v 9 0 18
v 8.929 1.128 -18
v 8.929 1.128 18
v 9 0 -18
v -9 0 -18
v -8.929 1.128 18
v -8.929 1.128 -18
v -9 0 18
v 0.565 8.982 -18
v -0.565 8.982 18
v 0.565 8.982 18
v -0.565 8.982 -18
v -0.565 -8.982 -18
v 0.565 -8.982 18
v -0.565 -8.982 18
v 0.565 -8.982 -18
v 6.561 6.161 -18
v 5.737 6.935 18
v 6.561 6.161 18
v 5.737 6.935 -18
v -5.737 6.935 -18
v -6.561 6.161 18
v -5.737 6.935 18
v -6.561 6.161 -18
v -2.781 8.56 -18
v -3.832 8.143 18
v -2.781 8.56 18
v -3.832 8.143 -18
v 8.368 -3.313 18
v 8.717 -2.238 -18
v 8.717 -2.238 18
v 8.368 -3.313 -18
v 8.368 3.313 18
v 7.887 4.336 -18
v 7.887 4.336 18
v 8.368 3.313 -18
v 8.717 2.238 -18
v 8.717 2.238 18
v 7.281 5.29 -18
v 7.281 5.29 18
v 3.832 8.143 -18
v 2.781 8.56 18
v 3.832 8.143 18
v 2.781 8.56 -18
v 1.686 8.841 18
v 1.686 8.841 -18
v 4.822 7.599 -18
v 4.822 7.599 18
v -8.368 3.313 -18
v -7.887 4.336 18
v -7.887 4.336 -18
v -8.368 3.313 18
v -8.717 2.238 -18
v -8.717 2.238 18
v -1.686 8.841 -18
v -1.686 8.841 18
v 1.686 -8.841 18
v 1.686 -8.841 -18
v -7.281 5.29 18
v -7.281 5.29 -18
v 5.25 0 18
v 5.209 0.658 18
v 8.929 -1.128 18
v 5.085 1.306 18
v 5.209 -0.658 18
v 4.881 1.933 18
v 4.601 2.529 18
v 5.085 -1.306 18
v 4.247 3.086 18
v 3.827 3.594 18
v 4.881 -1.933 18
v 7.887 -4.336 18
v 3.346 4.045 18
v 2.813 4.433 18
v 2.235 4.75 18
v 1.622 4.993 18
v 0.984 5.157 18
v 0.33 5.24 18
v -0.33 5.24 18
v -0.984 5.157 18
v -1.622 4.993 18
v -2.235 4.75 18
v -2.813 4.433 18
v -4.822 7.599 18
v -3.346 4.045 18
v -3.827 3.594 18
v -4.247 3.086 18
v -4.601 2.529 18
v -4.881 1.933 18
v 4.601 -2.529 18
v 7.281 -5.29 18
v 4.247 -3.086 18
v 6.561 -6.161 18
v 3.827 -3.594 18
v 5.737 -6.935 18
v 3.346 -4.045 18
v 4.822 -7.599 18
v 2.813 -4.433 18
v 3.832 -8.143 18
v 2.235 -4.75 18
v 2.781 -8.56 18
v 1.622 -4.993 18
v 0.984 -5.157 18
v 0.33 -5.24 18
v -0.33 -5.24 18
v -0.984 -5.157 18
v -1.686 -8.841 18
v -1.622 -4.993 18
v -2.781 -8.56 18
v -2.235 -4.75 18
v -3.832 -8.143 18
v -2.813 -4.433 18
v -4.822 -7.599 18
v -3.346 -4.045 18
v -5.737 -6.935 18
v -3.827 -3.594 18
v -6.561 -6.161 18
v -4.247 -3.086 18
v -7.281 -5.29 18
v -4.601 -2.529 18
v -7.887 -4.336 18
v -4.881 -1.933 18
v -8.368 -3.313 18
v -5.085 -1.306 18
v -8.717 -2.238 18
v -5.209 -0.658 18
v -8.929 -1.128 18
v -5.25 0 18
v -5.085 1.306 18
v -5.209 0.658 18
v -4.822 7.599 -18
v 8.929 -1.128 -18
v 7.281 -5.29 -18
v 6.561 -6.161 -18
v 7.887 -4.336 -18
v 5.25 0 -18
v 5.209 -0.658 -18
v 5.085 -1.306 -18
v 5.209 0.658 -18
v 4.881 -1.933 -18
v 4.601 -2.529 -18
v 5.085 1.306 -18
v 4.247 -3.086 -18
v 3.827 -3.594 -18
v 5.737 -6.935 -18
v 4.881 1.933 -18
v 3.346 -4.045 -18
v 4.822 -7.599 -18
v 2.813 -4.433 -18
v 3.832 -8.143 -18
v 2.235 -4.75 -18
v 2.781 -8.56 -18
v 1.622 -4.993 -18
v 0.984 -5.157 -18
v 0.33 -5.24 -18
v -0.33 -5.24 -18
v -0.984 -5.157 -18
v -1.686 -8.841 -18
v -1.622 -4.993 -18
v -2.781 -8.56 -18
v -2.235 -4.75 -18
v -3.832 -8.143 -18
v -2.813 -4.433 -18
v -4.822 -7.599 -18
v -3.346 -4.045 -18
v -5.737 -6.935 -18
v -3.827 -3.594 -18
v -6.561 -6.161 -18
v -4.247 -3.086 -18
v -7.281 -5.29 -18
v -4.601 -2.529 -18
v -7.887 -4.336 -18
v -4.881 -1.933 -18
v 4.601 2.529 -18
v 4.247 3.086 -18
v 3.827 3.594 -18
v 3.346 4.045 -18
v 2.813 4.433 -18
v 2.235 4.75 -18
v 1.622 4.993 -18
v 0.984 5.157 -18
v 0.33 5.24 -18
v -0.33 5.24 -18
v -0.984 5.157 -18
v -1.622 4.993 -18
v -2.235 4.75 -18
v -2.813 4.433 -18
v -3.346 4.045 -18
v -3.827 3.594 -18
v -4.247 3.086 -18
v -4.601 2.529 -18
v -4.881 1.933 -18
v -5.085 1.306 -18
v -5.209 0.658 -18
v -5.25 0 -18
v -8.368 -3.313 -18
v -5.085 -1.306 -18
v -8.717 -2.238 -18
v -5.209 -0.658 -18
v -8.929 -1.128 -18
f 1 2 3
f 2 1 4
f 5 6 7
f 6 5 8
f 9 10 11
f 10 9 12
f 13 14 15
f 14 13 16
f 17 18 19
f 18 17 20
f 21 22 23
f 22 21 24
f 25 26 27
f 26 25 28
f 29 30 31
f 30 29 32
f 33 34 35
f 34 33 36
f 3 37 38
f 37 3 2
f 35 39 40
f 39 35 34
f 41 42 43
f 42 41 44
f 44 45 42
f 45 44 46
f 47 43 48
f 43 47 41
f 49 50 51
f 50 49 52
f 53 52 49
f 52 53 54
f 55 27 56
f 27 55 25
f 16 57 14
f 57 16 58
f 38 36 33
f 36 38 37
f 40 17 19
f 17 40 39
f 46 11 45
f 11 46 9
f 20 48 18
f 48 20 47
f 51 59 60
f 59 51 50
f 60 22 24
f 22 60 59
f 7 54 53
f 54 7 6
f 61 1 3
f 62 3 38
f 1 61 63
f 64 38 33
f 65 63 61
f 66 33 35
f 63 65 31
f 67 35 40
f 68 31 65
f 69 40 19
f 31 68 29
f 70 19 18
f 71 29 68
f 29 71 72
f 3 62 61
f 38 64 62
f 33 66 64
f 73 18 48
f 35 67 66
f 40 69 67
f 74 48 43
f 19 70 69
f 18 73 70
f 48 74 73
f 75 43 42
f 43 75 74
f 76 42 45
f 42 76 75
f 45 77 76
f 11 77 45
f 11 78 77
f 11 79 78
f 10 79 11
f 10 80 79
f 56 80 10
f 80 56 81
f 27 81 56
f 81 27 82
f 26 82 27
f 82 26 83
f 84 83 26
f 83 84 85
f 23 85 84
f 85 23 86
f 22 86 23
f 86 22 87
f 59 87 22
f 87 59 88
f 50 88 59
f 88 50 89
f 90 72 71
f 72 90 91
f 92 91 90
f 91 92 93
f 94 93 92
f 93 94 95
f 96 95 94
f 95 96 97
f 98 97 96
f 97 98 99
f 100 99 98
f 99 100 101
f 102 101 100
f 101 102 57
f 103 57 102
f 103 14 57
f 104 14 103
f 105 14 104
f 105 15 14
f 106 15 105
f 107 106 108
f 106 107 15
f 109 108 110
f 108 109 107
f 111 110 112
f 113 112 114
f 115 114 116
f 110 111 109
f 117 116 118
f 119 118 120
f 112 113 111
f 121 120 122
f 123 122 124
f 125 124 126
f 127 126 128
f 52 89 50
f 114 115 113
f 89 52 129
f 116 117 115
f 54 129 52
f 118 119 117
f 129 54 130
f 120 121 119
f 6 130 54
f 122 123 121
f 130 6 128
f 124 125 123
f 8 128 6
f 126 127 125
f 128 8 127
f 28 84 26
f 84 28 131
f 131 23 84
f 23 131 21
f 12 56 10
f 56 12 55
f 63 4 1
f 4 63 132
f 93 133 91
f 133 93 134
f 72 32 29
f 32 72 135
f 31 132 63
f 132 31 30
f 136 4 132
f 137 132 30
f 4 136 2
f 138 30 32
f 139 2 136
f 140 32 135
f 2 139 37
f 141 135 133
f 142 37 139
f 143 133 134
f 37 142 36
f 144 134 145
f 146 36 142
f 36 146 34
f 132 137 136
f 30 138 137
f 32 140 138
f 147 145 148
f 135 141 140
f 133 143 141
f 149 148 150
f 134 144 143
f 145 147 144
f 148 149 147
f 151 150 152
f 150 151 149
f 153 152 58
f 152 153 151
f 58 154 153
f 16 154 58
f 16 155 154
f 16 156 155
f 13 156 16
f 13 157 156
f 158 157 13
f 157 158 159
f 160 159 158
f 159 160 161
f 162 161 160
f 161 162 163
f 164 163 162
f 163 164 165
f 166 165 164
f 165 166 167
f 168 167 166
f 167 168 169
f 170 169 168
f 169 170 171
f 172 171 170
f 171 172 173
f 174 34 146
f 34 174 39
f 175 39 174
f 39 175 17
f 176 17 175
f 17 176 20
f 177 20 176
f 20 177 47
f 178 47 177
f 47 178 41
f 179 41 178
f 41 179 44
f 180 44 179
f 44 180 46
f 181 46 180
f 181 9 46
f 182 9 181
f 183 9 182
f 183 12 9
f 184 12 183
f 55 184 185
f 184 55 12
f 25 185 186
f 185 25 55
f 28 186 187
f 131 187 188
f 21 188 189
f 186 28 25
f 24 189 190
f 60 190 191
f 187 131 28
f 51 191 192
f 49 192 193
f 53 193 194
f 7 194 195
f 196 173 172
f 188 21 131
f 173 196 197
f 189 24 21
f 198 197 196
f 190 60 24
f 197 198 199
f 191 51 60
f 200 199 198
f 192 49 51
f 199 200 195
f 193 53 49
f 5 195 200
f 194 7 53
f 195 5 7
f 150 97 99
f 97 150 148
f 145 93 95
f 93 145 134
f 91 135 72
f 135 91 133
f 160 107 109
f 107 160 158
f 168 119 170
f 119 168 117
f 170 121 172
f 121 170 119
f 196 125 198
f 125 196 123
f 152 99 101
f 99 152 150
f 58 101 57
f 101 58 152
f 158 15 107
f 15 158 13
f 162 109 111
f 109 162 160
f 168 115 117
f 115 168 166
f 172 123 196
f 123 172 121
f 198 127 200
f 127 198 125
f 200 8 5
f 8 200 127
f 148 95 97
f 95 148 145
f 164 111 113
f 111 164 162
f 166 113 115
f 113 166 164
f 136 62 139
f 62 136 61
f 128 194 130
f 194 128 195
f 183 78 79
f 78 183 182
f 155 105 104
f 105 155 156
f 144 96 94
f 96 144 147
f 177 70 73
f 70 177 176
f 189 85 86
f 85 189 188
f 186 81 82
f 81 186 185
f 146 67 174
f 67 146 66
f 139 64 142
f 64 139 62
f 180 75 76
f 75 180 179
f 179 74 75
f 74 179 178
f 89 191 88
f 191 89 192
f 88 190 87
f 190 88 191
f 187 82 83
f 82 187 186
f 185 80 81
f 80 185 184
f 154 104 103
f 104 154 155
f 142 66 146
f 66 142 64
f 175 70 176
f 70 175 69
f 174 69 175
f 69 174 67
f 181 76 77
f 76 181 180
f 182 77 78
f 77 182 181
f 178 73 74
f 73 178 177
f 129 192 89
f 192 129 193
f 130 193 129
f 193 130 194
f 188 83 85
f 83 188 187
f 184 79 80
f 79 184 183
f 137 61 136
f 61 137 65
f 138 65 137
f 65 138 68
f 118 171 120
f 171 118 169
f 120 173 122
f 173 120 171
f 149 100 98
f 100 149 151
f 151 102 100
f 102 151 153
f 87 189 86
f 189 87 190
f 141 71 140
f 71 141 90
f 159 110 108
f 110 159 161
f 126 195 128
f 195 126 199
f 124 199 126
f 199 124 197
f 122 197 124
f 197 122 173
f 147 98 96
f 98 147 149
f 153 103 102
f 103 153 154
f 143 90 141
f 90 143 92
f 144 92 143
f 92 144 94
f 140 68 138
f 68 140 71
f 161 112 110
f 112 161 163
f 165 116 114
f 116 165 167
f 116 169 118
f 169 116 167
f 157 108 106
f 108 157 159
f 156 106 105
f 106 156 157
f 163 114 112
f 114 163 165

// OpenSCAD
$fn = 50;


difference() {
	union() {
		translate(v = [0, 0, -18.0000000000]) {
			cylinder(h = 36, r = 9.0000000000);
		}
	}
	union() {
		translate(v = [0, 0, -100.0000000000]) {
			cylinder(h = 200, r = 5.2500000000);
		}
	}
}
